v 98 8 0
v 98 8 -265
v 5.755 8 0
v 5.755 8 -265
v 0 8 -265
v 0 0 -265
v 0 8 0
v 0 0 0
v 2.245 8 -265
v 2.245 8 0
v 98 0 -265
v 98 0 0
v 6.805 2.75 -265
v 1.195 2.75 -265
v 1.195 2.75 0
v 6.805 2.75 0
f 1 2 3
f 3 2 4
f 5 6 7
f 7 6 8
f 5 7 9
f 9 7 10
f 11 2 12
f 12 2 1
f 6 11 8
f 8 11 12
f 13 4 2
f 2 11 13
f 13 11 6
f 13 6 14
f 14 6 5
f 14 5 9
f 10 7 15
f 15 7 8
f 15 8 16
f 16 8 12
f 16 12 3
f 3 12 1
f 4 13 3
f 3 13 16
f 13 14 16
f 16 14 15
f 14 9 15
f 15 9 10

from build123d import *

# Parameters (mm, degrees)
SKETCH1_W           = 98
SKETCH1_H           = 8
BOSS_EXTRUDE1_DEPTH = 265
CUT_EXTRUDE2_DEPTH  = 265


with BuildPart() as part:
    # Sketch1 → Boss-Extrude1 (new body)
    with BuildSketch(Plane.XY):
        with Locations((49, 4)):
            Rectangle(SKETCH1_W, SKETCH1_H)
    extrude(amount=-BOSS_EXTRUDE1_DEPTH)

    # Sketch2 → Cut-Extrude2 (cut)
    with BuildSketch(Plane.XY):
        Polygon((2.245049024, 8), (1.195049024, 2.75), (6.804950976, 2.75), (5.754950976, 8), align=None)
    extrude(amount=-CUT_EXTRUDE2_DEPTH, mode=Mode.SUBTRACT)


solid = part.part
